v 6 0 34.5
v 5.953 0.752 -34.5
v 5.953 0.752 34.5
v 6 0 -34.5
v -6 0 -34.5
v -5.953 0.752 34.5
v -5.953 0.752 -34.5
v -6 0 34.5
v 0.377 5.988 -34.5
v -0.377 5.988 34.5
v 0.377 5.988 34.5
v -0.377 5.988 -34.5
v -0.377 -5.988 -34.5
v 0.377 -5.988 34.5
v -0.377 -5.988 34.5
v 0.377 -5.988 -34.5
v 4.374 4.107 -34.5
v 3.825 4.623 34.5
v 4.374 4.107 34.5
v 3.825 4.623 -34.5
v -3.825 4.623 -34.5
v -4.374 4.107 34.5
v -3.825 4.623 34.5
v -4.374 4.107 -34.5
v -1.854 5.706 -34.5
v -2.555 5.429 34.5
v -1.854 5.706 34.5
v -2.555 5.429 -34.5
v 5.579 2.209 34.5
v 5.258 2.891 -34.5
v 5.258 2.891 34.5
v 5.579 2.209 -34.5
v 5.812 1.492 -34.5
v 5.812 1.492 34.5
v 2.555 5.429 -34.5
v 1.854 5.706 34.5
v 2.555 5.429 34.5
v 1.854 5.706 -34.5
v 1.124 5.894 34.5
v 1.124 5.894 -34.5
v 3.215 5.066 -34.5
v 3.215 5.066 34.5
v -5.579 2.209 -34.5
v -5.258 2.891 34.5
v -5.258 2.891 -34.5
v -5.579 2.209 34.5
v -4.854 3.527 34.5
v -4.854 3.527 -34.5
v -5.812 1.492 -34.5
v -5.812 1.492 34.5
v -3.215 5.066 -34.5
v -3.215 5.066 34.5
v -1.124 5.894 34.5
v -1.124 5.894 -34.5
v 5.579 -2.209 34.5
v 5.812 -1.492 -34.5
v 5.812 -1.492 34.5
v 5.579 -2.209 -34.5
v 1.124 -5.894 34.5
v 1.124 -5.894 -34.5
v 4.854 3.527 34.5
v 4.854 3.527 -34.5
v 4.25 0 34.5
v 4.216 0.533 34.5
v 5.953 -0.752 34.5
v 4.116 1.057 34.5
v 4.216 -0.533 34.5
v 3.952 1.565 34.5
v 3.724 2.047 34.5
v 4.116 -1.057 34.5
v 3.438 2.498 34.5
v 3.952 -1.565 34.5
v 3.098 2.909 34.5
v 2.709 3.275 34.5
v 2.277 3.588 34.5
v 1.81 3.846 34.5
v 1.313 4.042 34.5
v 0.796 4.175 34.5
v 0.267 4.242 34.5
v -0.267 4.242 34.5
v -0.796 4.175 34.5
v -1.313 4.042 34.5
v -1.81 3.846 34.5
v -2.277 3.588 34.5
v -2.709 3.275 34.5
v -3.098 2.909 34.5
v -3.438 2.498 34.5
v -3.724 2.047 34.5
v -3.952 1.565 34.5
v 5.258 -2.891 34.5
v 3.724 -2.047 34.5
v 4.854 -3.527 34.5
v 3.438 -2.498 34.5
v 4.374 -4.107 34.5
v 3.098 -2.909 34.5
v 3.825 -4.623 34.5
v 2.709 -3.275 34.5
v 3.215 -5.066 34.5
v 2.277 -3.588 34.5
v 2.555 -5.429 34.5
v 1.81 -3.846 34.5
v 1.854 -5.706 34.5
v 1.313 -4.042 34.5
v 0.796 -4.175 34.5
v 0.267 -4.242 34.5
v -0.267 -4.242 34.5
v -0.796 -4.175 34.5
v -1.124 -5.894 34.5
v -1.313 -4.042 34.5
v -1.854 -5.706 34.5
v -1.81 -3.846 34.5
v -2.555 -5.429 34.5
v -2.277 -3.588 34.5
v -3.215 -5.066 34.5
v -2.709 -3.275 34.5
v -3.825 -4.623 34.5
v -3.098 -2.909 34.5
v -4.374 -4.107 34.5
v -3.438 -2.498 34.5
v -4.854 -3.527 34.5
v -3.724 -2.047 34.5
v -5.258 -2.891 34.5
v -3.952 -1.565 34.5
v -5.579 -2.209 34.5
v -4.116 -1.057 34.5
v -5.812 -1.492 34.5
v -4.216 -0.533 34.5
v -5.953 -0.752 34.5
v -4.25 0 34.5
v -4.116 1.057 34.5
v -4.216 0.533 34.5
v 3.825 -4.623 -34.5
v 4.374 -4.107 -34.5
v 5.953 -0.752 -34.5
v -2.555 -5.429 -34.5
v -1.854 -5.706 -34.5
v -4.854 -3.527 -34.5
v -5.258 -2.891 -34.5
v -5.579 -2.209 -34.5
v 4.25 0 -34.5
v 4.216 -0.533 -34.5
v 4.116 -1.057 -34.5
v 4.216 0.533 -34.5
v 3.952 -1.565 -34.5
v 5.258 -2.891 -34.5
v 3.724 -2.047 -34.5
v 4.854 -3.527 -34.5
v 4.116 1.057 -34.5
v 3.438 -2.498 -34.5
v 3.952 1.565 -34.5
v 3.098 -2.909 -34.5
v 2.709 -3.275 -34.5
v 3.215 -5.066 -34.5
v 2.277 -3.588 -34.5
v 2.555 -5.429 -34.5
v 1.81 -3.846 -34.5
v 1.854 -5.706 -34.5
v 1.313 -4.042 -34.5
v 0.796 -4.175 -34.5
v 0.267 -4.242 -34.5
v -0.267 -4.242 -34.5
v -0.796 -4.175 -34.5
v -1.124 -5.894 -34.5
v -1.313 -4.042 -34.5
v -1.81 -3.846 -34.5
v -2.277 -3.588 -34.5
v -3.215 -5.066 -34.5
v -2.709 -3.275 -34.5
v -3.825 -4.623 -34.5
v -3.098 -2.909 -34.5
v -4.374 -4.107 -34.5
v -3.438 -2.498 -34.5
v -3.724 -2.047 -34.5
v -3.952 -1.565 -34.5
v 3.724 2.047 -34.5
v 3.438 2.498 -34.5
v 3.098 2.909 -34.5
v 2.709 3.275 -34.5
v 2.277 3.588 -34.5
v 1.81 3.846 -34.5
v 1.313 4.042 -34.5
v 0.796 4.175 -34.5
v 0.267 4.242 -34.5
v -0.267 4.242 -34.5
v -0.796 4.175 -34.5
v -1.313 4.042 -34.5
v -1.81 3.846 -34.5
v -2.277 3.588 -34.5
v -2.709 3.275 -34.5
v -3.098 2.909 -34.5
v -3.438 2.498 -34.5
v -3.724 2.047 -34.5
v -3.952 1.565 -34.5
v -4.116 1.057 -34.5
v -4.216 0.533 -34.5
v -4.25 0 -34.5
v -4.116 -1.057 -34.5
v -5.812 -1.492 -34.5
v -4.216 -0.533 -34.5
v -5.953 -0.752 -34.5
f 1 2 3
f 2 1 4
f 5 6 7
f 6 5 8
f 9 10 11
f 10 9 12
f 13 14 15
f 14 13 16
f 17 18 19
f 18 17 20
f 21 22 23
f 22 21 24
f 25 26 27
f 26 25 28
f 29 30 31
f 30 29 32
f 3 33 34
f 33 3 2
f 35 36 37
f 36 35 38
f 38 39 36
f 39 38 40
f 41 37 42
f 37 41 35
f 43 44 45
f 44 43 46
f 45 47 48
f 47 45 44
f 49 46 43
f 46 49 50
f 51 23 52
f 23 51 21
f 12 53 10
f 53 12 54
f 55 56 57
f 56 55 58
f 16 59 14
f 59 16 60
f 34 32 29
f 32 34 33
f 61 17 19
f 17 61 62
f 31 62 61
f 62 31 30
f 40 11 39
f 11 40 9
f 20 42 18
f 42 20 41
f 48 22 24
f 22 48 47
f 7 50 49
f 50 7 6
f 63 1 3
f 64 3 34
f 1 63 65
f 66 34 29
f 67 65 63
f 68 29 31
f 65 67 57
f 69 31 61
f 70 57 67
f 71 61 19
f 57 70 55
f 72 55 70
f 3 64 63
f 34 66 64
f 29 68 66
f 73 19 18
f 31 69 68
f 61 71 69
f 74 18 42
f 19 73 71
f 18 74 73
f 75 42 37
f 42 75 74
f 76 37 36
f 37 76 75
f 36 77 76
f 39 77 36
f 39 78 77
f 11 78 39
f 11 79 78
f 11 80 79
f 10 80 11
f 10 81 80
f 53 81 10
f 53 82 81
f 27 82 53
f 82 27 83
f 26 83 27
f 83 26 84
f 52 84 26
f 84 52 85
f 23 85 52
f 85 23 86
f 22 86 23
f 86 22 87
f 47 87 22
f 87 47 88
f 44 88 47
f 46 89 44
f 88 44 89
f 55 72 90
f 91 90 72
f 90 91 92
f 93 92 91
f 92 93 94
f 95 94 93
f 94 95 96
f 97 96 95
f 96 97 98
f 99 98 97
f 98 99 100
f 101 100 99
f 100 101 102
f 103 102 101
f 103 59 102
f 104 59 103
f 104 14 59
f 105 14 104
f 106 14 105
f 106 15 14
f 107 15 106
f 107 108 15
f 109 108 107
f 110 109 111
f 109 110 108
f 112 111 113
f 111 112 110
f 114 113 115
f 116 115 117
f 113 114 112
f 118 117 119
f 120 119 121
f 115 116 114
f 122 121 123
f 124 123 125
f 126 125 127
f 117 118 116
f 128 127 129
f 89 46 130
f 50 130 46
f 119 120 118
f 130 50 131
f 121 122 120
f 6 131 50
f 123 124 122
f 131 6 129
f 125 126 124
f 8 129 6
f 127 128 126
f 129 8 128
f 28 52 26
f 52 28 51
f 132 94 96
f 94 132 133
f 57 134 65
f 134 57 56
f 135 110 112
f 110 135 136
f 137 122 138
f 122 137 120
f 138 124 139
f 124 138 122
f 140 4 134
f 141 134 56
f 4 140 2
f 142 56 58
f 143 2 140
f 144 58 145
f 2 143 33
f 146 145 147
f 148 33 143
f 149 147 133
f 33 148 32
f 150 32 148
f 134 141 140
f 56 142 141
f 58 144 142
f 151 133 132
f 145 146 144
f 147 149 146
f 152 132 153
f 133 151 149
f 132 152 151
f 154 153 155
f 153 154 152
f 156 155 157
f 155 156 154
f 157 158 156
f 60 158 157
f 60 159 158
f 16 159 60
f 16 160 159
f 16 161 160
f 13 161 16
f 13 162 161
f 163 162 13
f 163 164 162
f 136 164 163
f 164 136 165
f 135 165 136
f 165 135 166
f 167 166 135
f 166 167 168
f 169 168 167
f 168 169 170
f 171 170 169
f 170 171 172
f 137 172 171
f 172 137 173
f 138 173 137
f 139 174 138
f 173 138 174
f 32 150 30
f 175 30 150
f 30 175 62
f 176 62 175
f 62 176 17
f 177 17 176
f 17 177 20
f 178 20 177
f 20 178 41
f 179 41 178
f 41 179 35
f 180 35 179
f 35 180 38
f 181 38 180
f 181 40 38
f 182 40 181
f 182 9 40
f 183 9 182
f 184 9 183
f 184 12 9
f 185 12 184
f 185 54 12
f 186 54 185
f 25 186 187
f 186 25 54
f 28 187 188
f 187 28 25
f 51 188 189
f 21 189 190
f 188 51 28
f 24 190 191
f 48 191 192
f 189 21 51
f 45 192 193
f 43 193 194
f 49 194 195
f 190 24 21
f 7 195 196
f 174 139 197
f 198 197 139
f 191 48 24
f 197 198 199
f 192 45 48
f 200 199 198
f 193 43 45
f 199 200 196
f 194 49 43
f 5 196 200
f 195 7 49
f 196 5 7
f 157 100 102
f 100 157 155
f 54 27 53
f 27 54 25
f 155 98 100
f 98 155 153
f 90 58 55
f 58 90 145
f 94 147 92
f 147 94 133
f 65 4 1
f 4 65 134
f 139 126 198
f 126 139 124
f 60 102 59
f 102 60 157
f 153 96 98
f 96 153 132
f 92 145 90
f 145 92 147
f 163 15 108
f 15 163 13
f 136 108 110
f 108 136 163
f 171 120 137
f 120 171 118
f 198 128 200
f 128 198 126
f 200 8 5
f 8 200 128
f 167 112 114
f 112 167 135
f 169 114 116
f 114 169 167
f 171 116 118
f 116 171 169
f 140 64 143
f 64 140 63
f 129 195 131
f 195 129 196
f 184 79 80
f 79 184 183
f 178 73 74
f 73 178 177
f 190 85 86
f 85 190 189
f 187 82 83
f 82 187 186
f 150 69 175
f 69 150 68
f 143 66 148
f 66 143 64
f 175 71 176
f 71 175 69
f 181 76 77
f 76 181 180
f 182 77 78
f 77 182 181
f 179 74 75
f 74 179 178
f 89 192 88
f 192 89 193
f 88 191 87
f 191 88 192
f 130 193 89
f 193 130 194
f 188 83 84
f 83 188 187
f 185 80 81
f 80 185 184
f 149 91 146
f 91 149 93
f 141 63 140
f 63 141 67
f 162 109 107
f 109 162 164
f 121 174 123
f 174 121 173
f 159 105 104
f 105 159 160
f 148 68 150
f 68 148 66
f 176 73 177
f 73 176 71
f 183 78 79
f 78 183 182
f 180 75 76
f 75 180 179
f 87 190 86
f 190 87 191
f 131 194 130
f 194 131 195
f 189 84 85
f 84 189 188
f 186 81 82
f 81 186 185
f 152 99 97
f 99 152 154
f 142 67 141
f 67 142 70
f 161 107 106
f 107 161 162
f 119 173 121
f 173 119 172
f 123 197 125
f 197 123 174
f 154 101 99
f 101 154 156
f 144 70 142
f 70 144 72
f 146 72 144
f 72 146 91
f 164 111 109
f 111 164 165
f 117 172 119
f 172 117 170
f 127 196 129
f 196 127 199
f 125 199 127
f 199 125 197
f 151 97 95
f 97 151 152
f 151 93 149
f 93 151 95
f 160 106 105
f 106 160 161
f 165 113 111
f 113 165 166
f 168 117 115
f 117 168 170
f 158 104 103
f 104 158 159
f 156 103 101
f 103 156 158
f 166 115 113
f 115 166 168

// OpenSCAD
$fn = 50;


difference() {
	union() {
		translate(v = [0, 0, -34.5000000000]) {
			cylinder(h = 69, r = 6.0000000000);
		}
	}
	union() {
		translate(v = [0, 0, -100.0000000000]) {
			cylinder(h = 200, r = 4.2500000000);
		}
	}
}
